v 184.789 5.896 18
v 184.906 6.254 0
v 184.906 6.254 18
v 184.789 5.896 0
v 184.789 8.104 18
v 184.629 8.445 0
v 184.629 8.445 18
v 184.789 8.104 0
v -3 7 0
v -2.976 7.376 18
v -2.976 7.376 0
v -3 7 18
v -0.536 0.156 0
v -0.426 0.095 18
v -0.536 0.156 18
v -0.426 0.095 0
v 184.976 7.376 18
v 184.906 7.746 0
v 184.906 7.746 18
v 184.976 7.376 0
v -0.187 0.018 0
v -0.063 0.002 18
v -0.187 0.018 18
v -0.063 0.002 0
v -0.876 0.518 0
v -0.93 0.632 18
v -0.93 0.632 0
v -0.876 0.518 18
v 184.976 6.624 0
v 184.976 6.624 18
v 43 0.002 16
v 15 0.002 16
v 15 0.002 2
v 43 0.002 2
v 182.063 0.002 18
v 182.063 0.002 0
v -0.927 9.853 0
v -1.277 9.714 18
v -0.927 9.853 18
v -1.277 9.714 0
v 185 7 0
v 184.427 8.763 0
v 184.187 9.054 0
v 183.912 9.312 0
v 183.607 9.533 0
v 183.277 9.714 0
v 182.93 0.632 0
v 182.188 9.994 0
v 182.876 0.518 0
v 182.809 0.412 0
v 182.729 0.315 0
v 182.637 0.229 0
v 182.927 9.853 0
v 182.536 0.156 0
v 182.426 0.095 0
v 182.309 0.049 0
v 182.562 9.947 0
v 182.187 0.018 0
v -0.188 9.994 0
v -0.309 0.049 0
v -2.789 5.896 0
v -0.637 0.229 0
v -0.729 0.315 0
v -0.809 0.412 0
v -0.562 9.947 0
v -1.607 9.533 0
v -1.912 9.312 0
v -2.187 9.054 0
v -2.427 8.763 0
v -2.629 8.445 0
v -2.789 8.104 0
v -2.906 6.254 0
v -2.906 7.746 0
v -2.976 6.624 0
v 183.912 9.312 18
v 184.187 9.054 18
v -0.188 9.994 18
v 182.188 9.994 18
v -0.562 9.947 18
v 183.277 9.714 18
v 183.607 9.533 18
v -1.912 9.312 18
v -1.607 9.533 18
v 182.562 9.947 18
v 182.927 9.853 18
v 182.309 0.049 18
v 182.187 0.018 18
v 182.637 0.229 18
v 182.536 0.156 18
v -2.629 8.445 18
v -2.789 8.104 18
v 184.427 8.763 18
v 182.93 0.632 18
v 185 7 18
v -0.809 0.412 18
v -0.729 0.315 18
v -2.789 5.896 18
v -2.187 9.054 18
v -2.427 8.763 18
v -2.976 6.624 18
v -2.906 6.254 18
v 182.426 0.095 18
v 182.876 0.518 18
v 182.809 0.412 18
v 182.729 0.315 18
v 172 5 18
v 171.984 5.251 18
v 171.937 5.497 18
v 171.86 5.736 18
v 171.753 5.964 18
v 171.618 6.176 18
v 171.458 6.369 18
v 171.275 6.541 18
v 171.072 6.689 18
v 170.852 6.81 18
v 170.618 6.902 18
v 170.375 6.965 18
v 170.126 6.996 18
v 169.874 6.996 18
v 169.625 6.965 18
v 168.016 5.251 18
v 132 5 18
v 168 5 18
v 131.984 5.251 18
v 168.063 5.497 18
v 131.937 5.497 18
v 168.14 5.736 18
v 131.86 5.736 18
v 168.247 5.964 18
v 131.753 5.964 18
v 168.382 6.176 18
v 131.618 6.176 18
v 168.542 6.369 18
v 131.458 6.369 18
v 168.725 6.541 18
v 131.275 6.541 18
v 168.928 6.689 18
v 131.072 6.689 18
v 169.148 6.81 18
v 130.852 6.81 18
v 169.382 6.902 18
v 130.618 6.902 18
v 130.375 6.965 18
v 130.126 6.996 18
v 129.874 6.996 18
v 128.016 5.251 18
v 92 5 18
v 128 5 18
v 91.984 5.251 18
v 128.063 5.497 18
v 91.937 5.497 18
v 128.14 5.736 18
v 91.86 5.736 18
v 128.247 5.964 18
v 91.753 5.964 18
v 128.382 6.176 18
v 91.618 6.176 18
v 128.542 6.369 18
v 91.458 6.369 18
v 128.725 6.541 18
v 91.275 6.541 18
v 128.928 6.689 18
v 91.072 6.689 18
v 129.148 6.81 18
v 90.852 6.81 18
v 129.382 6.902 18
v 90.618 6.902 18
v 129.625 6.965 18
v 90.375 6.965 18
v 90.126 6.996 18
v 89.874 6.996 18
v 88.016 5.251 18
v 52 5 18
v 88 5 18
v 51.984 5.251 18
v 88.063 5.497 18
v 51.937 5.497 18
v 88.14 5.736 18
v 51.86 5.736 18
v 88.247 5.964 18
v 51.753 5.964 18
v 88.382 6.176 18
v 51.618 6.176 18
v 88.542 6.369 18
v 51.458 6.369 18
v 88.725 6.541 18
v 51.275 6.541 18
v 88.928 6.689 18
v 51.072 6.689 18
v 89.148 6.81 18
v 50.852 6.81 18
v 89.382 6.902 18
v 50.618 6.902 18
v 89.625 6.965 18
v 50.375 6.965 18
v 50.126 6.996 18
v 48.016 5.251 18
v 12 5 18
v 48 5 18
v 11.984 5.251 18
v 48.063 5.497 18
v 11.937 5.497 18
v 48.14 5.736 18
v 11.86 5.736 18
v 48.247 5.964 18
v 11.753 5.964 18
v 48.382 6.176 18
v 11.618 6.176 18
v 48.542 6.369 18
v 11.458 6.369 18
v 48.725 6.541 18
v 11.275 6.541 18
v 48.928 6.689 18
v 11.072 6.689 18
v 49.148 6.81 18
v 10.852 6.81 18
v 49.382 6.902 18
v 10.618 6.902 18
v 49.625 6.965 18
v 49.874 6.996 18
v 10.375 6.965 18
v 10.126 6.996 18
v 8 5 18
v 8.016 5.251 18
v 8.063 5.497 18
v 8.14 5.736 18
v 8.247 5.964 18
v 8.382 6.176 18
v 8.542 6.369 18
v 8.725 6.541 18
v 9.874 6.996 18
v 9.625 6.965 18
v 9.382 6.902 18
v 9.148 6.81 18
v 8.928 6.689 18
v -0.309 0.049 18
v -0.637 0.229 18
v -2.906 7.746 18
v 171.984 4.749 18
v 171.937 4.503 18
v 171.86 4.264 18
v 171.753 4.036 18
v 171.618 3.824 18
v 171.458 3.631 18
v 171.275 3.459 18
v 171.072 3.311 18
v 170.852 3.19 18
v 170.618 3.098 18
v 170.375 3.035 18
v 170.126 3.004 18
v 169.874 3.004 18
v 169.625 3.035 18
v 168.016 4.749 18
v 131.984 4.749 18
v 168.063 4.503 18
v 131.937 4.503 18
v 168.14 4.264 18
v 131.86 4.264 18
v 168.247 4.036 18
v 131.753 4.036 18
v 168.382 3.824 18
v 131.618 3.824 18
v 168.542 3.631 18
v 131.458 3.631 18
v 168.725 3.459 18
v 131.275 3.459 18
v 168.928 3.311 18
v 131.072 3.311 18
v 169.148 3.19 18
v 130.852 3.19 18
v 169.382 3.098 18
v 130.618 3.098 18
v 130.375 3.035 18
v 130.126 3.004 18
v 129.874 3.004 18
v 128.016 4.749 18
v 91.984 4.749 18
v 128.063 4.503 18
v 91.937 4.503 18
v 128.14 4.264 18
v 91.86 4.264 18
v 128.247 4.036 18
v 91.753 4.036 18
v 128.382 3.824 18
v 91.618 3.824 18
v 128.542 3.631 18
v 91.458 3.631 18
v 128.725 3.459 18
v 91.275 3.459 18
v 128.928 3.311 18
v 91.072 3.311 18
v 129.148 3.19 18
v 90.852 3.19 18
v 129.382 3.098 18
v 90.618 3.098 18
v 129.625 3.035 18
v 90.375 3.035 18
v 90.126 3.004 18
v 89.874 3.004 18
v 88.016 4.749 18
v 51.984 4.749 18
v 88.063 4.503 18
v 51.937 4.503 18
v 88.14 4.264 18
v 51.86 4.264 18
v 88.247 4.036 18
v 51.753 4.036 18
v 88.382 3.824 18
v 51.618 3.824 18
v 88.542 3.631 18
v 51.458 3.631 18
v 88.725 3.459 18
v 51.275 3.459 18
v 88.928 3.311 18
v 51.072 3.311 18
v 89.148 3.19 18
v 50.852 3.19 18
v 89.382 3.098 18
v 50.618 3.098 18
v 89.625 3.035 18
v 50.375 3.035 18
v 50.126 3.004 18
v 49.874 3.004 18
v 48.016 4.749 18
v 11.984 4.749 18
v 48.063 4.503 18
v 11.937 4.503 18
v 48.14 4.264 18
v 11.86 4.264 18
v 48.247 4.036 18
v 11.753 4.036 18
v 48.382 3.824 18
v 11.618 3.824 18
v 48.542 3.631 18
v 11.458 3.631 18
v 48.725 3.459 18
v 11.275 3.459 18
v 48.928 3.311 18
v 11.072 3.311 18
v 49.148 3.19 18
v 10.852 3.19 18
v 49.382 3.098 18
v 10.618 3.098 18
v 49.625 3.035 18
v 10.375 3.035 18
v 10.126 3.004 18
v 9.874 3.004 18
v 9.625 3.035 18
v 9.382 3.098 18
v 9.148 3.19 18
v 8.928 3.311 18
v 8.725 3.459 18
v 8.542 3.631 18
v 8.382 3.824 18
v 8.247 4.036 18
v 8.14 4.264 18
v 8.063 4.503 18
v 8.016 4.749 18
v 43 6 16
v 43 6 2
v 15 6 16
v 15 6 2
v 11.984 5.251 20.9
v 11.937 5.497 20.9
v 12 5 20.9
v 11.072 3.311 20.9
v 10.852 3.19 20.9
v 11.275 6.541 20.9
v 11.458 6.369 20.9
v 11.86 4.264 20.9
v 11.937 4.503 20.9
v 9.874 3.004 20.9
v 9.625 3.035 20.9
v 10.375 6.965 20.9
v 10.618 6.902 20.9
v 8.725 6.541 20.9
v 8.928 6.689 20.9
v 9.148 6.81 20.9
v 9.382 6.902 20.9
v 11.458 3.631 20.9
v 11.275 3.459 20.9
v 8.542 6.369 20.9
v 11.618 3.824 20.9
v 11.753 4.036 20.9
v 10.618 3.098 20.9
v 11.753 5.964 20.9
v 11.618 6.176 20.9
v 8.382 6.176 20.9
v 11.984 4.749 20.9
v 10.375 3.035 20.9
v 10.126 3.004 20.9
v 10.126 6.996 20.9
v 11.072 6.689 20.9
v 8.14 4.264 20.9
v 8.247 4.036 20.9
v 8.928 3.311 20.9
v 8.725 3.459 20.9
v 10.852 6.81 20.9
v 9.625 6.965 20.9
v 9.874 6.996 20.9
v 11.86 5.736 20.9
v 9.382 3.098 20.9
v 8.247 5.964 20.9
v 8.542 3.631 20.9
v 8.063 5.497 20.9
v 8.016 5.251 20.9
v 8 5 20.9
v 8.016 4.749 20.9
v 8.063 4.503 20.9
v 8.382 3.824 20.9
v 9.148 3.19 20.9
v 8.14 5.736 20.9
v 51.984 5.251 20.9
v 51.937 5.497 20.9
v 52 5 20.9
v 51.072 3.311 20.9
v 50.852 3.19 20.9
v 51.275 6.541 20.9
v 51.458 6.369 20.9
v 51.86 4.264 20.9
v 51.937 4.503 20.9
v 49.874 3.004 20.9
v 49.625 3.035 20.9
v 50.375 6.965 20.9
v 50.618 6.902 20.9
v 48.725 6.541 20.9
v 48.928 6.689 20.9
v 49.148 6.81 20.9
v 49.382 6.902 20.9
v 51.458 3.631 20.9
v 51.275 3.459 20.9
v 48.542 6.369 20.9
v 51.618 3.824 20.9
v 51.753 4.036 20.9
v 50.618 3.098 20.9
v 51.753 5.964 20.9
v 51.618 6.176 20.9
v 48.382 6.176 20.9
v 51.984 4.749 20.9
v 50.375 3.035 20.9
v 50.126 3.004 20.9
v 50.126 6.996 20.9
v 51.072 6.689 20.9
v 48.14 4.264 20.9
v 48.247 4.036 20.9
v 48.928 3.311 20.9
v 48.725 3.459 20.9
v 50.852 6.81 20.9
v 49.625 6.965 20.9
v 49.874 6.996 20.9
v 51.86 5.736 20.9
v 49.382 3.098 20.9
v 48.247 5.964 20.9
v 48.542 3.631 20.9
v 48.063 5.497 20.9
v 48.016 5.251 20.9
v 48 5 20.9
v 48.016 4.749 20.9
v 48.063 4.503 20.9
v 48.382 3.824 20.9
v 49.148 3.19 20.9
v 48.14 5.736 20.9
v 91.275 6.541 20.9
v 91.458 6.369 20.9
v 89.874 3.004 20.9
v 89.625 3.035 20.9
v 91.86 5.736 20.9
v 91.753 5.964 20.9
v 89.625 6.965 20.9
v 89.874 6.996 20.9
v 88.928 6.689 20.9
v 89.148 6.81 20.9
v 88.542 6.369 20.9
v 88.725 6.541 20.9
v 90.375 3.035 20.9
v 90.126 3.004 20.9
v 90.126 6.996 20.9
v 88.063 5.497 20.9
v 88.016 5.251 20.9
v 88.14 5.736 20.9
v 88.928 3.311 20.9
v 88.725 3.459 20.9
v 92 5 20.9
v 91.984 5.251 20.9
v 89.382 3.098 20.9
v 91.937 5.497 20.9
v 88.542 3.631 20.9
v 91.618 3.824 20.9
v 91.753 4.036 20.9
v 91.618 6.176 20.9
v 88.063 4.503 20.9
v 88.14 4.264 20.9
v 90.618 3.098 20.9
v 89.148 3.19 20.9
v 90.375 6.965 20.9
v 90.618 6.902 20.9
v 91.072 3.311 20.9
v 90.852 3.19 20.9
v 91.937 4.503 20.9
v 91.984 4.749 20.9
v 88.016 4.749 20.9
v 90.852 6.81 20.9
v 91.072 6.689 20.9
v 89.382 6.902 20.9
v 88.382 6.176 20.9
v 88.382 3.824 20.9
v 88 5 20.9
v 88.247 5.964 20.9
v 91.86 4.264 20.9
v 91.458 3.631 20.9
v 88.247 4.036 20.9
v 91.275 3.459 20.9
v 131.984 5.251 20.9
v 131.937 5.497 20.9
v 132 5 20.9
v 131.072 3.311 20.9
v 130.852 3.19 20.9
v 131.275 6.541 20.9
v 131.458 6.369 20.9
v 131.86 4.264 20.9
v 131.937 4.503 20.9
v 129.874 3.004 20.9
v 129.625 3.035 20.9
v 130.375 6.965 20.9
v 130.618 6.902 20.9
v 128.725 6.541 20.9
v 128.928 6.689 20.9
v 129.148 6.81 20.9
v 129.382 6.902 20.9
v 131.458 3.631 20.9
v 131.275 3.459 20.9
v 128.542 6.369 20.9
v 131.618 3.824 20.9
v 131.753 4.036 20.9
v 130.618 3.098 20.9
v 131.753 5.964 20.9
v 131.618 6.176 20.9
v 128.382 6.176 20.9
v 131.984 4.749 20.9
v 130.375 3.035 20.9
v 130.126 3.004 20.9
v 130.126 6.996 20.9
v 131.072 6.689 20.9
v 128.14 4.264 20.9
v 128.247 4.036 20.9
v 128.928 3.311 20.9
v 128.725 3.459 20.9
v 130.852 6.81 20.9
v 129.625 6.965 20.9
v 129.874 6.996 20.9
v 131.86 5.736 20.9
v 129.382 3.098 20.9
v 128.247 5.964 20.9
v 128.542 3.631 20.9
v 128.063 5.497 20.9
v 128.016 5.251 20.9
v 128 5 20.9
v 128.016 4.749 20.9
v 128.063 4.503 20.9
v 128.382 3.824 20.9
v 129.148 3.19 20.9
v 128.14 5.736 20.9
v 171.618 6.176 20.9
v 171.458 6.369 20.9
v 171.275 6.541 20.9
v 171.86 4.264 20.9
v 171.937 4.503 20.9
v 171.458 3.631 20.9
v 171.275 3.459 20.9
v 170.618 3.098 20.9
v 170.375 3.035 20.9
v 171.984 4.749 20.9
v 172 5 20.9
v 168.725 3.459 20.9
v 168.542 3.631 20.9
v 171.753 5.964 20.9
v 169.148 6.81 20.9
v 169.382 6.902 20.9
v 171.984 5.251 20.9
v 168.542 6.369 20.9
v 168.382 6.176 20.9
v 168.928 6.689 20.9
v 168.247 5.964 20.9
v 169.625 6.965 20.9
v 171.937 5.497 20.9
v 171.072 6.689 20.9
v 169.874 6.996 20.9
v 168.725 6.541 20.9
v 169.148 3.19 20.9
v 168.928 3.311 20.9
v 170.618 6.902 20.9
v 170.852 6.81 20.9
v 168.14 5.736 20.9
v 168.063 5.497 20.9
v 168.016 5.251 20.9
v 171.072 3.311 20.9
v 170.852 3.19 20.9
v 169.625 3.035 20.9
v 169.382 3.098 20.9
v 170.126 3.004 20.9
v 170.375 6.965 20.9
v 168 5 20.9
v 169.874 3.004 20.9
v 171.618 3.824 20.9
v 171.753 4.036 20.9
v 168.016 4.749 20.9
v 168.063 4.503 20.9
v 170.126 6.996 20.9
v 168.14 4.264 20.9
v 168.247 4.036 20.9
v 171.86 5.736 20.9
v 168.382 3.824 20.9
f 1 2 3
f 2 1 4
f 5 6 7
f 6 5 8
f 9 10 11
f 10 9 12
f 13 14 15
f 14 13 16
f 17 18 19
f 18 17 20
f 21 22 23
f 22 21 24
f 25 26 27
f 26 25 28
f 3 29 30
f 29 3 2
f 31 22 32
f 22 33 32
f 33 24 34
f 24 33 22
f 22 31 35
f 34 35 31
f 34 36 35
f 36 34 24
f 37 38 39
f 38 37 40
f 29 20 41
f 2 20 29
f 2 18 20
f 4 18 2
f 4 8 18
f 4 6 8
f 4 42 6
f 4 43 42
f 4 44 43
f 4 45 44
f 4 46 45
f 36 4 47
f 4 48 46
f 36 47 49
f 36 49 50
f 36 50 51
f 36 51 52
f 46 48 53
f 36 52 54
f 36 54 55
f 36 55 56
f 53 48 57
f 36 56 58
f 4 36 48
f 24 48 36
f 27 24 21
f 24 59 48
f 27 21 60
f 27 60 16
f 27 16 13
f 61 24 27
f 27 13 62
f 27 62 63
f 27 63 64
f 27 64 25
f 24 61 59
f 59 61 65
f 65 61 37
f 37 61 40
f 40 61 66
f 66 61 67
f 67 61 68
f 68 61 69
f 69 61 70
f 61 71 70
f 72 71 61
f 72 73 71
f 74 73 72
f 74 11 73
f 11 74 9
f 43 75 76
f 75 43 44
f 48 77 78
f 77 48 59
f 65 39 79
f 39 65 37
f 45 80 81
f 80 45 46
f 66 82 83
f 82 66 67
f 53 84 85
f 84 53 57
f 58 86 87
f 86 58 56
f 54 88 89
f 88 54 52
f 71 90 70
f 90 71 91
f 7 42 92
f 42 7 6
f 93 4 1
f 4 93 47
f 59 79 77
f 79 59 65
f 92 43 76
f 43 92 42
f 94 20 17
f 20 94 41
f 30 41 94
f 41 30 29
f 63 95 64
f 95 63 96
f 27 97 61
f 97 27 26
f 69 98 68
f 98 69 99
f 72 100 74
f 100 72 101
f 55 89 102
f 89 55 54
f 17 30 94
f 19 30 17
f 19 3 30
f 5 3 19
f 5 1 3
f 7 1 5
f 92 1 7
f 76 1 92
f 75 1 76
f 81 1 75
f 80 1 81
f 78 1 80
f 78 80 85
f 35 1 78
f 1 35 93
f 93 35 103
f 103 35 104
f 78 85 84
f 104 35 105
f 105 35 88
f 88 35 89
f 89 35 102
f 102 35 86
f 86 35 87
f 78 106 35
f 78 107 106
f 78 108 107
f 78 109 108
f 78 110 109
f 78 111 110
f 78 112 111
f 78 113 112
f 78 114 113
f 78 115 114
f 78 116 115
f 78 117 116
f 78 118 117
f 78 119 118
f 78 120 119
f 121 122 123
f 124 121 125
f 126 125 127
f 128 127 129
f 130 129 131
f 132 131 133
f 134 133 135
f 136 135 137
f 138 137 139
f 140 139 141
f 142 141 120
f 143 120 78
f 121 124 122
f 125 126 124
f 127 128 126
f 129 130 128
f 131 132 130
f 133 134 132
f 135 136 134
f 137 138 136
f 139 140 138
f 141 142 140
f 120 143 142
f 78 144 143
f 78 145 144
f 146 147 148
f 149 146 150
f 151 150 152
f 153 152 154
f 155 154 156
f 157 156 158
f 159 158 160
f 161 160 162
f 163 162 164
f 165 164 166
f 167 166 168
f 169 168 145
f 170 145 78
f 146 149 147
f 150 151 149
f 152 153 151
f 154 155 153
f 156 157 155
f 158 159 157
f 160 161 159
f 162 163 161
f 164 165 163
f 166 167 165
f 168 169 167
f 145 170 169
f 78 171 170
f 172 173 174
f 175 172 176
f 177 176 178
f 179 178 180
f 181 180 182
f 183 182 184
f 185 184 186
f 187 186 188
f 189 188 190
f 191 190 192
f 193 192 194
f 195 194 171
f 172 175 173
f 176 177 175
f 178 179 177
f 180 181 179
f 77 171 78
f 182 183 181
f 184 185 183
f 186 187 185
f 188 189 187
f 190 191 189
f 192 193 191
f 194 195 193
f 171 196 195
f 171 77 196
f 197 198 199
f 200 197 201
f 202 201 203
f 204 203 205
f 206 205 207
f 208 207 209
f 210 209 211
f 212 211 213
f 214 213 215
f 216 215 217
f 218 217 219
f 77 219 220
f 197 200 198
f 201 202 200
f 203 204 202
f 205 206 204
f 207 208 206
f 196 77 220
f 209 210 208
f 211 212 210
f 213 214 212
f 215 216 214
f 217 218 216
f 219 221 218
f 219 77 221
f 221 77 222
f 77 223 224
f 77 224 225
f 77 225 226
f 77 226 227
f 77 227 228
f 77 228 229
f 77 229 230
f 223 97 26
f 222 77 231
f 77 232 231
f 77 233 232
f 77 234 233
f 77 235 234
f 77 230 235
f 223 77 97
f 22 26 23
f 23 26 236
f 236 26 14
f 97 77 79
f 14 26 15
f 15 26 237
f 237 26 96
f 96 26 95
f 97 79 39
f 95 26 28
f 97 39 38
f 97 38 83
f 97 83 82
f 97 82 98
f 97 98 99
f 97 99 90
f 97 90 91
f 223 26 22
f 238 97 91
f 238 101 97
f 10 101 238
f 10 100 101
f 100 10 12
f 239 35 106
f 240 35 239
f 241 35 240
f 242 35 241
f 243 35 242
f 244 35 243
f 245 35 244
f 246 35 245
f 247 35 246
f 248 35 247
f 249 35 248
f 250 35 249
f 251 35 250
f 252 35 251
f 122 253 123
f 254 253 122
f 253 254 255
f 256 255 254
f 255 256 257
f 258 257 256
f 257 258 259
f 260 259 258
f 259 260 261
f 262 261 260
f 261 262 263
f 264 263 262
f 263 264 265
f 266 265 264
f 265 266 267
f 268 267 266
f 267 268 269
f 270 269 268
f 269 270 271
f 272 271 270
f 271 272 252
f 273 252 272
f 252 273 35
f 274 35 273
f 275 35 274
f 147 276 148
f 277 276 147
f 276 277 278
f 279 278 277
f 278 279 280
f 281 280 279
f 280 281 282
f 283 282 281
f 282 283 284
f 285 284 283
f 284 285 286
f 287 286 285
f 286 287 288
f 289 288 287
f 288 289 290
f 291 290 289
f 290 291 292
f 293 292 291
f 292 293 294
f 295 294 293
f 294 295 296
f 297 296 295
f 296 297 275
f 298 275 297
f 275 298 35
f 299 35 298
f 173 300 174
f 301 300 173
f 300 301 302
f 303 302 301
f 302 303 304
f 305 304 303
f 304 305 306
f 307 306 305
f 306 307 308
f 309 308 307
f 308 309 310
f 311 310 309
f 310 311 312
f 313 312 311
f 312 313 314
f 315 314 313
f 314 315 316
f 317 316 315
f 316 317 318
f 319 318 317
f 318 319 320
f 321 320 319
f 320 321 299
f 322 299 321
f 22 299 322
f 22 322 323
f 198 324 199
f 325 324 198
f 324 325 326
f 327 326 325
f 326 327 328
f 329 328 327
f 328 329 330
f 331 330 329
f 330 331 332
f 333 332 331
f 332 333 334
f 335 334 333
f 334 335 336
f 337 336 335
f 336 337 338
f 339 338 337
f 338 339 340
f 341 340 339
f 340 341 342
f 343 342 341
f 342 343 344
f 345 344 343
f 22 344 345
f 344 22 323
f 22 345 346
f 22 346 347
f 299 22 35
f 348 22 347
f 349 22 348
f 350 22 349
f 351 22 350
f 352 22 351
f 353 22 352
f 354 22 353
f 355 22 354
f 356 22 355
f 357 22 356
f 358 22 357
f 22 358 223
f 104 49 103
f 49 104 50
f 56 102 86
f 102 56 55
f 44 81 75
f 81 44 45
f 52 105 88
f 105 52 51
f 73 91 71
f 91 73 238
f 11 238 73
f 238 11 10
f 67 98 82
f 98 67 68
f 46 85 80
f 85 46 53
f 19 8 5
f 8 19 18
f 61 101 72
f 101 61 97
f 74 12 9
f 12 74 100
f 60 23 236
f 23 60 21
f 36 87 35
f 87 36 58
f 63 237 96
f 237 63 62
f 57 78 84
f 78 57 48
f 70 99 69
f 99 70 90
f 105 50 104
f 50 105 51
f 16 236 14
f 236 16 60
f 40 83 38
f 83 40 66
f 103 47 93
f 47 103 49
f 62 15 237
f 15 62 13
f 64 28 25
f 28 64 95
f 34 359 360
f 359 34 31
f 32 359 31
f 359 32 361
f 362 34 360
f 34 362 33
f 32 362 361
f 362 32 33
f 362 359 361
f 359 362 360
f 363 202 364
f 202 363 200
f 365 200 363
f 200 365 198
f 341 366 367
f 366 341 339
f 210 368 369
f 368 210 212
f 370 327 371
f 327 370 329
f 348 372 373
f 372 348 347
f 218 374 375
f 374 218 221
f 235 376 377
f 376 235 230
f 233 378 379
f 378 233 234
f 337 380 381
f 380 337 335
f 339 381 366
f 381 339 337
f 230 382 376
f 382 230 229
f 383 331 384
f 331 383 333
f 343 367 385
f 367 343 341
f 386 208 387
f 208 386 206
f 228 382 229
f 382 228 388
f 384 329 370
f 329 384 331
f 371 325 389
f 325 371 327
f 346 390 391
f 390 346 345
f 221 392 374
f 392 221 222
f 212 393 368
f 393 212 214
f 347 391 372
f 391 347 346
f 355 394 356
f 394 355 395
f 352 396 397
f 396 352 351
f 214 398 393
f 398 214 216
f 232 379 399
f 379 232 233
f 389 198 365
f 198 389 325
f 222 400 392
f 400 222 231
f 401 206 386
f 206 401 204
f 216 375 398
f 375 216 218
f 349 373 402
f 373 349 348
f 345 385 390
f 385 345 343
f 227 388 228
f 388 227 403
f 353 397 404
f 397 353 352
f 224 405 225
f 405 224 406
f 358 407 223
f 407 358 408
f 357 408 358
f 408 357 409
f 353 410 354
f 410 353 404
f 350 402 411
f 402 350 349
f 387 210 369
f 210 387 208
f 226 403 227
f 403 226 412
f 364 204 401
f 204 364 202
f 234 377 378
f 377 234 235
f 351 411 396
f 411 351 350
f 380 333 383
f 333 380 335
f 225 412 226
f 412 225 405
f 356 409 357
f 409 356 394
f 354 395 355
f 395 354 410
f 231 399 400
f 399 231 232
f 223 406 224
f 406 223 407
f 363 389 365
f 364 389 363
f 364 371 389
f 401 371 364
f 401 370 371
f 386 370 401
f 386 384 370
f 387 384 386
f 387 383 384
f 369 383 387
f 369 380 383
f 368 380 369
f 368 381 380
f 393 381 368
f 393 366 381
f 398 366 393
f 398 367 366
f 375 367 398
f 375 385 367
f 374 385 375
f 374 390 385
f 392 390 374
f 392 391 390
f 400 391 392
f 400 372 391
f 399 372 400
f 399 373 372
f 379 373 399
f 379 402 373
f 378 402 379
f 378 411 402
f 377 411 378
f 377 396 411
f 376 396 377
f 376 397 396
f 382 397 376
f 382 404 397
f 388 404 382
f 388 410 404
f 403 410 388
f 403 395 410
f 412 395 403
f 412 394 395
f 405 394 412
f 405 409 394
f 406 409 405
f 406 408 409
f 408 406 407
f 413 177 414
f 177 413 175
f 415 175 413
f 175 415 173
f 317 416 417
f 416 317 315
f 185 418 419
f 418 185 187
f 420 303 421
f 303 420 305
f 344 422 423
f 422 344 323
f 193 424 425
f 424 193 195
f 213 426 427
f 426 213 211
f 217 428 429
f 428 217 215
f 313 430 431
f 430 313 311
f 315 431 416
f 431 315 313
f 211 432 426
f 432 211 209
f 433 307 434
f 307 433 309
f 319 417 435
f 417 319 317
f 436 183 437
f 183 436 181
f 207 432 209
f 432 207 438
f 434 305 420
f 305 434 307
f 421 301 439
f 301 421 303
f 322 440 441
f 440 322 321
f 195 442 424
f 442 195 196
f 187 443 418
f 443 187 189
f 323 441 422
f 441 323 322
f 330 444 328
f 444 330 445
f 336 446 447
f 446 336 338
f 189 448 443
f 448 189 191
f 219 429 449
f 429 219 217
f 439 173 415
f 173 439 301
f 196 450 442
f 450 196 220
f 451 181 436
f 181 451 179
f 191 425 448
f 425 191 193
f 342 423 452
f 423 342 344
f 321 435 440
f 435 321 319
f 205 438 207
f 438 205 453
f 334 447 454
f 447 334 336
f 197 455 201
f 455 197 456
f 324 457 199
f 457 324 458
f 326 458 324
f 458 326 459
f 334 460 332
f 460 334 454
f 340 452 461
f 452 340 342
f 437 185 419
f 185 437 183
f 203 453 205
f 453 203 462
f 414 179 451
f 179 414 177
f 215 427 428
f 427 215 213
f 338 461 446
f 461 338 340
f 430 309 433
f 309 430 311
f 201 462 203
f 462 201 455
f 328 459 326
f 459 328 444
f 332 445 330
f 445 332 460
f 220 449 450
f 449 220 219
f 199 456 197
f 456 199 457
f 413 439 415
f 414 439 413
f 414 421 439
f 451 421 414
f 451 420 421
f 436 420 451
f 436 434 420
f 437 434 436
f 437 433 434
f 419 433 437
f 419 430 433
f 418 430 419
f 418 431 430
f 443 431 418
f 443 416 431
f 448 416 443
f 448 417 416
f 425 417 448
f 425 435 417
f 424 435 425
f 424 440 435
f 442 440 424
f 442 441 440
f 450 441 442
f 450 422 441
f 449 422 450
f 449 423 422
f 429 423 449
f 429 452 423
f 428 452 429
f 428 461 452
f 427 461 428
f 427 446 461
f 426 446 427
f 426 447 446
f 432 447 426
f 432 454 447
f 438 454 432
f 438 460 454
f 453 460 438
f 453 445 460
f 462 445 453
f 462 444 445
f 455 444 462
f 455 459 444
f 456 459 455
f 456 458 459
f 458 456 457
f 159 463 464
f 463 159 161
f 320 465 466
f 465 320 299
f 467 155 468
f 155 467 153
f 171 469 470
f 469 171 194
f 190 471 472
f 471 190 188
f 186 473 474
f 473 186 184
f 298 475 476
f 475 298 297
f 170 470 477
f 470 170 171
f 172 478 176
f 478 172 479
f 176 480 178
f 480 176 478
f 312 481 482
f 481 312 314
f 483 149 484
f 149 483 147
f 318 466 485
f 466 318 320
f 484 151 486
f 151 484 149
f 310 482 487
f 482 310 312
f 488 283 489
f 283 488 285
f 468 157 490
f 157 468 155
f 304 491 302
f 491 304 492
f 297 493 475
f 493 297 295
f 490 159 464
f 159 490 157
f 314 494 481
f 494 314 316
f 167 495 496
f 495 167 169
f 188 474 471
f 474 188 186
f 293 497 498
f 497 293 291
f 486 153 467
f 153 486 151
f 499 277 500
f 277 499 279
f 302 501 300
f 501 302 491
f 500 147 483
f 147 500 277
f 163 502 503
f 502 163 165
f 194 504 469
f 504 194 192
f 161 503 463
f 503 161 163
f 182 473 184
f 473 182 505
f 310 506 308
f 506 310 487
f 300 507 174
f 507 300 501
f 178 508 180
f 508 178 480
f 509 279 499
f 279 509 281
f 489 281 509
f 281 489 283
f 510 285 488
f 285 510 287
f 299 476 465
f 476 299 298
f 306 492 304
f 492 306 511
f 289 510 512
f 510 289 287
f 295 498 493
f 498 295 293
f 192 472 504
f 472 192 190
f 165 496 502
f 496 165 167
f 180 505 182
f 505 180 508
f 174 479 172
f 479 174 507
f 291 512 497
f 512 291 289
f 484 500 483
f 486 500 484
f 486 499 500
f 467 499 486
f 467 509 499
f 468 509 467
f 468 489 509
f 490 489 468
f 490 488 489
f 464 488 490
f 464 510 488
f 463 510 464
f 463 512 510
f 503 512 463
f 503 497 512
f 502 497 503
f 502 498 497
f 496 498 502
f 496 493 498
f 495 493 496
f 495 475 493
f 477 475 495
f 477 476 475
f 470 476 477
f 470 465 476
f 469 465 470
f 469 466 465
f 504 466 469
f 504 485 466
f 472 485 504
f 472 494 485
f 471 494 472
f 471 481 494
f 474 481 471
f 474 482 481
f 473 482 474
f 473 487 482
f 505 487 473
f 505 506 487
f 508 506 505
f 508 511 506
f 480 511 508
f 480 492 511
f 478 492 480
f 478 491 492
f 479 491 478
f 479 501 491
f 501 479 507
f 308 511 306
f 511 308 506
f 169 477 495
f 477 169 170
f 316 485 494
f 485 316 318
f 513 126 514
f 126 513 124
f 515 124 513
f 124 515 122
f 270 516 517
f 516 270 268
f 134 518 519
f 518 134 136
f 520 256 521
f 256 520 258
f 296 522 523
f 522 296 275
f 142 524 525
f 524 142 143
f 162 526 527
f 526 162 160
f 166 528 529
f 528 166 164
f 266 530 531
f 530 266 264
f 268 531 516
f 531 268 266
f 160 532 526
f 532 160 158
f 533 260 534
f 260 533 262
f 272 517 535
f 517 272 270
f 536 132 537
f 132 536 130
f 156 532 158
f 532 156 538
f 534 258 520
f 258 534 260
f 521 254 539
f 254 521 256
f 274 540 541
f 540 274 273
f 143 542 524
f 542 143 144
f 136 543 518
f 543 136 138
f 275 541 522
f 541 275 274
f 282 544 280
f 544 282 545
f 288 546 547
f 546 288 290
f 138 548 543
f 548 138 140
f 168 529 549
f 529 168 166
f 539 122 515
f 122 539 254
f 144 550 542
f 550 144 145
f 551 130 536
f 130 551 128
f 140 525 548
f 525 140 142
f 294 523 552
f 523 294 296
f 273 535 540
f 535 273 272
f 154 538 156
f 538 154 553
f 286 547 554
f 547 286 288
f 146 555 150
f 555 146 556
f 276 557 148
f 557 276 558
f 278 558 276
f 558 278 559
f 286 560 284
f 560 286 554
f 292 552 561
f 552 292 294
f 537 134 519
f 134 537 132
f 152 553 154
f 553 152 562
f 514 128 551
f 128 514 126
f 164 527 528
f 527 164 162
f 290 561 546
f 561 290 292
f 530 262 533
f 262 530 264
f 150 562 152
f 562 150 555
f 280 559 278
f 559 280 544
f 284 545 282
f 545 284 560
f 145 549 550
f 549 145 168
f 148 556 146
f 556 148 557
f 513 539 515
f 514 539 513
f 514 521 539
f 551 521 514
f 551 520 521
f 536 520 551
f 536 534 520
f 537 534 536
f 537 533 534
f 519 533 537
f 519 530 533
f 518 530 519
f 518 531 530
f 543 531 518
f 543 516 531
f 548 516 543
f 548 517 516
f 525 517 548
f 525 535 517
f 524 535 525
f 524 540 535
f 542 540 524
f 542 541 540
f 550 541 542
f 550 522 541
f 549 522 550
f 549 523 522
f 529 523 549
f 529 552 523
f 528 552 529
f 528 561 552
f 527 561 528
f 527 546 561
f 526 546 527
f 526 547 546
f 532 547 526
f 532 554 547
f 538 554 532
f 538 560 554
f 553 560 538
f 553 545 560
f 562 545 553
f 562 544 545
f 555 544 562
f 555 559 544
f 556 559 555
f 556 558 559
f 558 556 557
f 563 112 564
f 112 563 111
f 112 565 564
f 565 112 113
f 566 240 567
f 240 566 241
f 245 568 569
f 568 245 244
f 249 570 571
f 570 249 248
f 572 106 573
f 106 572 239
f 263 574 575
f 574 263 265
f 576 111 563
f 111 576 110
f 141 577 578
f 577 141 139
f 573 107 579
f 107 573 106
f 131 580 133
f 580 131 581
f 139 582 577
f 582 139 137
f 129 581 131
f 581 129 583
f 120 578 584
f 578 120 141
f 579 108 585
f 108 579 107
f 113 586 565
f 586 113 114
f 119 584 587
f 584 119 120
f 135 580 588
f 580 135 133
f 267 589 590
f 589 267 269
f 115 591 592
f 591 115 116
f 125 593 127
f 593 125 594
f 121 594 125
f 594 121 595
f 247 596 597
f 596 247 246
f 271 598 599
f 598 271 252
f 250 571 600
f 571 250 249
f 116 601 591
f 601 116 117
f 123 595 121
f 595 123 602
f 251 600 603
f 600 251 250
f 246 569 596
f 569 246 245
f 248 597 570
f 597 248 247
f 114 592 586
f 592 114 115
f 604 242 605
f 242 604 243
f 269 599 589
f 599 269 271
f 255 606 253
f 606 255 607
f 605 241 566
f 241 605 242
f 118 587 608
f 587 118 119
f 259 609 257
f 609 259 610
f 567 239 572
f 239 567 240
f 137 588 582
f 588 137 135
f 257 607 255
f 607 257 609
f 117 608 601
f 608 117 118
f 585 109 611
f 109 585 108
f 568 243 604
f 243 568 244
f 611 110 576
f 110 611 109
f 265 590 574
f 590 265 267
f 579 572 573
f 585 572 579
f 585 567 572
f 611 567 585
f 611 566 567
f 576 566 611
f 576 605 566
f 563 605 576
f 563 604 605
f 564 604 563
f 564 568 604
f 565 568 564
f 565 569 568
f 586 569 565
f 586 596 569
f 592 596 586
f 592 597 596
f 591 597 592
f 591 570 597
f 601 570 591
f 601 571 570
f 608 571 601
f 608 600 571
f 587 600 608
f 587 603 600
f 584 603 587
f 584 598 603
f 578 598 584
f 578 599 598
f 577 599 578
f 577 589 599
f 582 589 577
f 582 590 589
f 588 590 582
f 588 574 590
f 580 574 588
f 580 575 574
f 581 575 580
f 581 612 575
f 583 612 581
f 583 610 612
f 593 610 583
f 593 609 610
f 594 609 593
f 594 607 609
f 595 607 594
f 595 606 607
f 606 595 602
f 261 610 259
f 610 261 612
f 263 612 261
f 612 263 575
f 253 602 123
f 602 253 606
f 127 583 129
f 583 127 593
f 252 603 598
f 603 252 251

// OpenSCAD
// file: ../common/math.scad
//
// just some useful general math utilities
//

//
// min() and max() give you the lower or higher of their arguments,
// respectively.  They behave asymmetrically at 0, so as to establish a
// stable sort order, merely reversed, no matter which order the inputs come
// in.
//
// contributed by @vathpela
//
function min(x, y) = y > x ? x : y;
function max(x, y) = x >= y ? x : y;

//
// logx(x, b) is log base x of b aka logX(b)
//
// *sigh*, openscad's math primitives are so defective
//
// contributed by @vathpela
//
function logx(x, b) = log(x) / log(b);
// file: ../common/shapes.scad
/*
  author: Christopher O'Brien  <obriencj@gmail.com>
  license: GPL v3
*/


function shared_tangents(p1, p2) =
    let(r1 = p1[2],
        r2 = p2[2],
        dx = p2.x - p1.x,
        dy = p2.y - p1.y,
        d = sqrt(dx * dx + dy * dy),
        theta = atan2(dy, dx) + acos((r1 - r2) / d),
        xa = p1.x +(cos(theta) * r1),
        ya = p1.y +(sin(theta) * r1),
        xb = p2.x +(cos(theta) * r2),
        yb = p2.y +(sin(theta) * r2))
     [ [xa, ya], [xb, yb] ];



module _rounded_polygon(points, $fn=100) {
/*
  each point is [x, y, r] of a circle

  adapted from
  http://forum.openscad.org/Script-to-replicate-hull-and-minkoswki-for-CSG-export-import-into-FreeCAD-td16537.html#a16556
*/

     p_len = len(points);

     function p_tang(index) =
	  shared_tangents(points[index], points[(index + 1) % p_len]);

     // all the positive radius circles
     for(p = points) {
	  if(p[2] > 0) {
	       translate([p.x, p.y]) {
		    circle(p[2]);
	       };
	  };
     };

     difference() {
	  // a polygon connecting the tangent points between all
	  // circles in order
	  polygon([for(i = [0: p_len - 1]) for(e = p_tang(i)) e]);

	  // then subtract all the negative radius circles
	  for(p = points) {
	       if(p[2] < 0) {
		    translate([p.x, p.y]) {
			 circle(-p[2]);
		    };
	       };
	  };
     };
}


module rounded_polygon(points, thick=0, $fn=100) {
     /*
       each point in points is a vector of [x, y, r] where r is
       positive to indicate that it is an interior point, and negative
       to indicate it is an exterior point.
     */

     if(thick) {
	  linear_extrude(thick) {
	       _rounded_polygon(points, $fn);
	  };
     } else {
	  _rounded_polygon(points, $fn);
     };
}


function _r_adj(r, adj) =
     let(ra = r + adj) (r > 0)? max(0, ra): ra;


function adj_rounded_poly(points, adj) =
     [for(p=points) [p.x, p.y, _r_adj(p[2], adj)]];


module rounded_inset_poly(points, inset, thick, lip=undef) {
     tl = lip? (thick - lip): (thick / 2);

     rounded_polygon(points, tl);
     translate([0, 0, tl]) {
	  rounded_polygon(adj_rounded_poly(points, -inset),
			  thick - tl);
     };
}


module rounded_outset_poly(points, inset, thick, lip=undef) {
     tl = lip? (thick - lip): (thick / 2);

     rounded_polygon(points, tl);
     rounded_hollow_poly(points, inset, thick);
}


module rounded_hollow_poly(points, inset, thick) {
     linear_extrude(thick) {
	  difference() {
	       rounded_polygon(points);
	       rounded_polygon(adj_rounded_poly(points, -inset));
	  };
     };
}


/**
   A cylinder with a bore through it

   * barrel_r is the exterior radius
   * barrel_h is the overall height
   * bore_r is the interior radius
*/
module barrel(barrel_r, barrel_h, bore_r, $fn=100) {
     linear_extrude(barrel_h) {
	  difference() {
	       circle(barrel_r);
	       circle(bore_r);
	  };
     };
}


/**
   A ring with a circular profile.

   * ring_ir is the interior radius
   * cross_r is the radius of the cross-section
*/
module o_ring(ring_ir, cross_r, $fn=100) {
     rotate_extrude(angle=360) {
	  translate([ring_ir + cross_r, 0, 0]) {
	       circle(cross_r);
	  };
     };
}


/**
   A ring with a D shaped profile.

   * ring_ir is the interior radius
   * cross_r is the radius of the cross-section, before being affected
   by the factor.
   * The factor describes how much of a circle is being presented in
   the cross-section. A factor of 1 is equivalent of an oring.
*/
module d_ring(ring_ir, cross_r, factor=0.25, $fn=100) {

     factor_shift = (cross_r * 2 * factor) - cross_r;

     rotate_extrude(angle=360) {
	  difference() {
	       translate([ring_ir + factor_shift , 0, 0]) {
		    circle(cross_r);
	       };
	       square([ring_ir * 2, ring_ir * 2], true);
	  };
     };
}



module rounded_plate(width, depth, height, turn_r=5.1, $fn=50) {
     turn_d = turn_r * 2;

     translate([turn_r, turn_r, 0]) {
	  linear_extrude(height) {
	       minkowski() {
		    square([width - turn_d, depth - turn_d]);
		    circle(turn_r);
	       };
	  };
     };
}


module rounded_box(width, depth, height, turn_r=5, $fn=50) {
     turn_d = turn_r * 2;

     translate([turn_r, turn_r, turn_r]) {
	  minkowski() {
	       cube([width - turn_d, depth - turn_d, height - turn_d]);
	       sphere(turn_r);
	  };
     };
}


// The end.
// file: ../common/copies.scad
/*
  author: Christopher O'Brien  <obriencj@gmail.com>
  license: GPL v3
*/
use <../common/math.scad>

module copy_mirror(plane=[0, 0, 1]) {
     children();
     mirror(plane) children();
}


module copy_translate(x=0, y=0, z=0, copies=1) {
     if(copies) {
	  for(i = [0:copies]) {
	       translate([x * i, y * i, z * i]) {
		    children();
	       };
	  };
     } else {
	  children();
     };
}


module copy_rotate(x=0, y=0, z=0, copies=1) {
     if(copies) {
	  for(i = [0:copies]) {
	       rotate([x * i, y * i, z * i]) {
		    children();
	       };
	  };
     } else {
	  children();
     };
}


module copy_grid(offsets=[0, 0, 0], grid=[1, 1, 1]) {
     copy_translate(x=offsets.x, copies=grid.x-1) {
	  copy_translate(y=offsets.y, copies=grid.y-1) {
	       copy_translate(z=offsets.z, copies=grid.z-1) {
		    children();
	       };
	  };
     };
}


module duplicate(move_v=[0,0,0], rotate_v=[0,0,0]) {
     children();
     translate(move_v) {
	  rotate(rotate_v) {
	       children();
	  };
     };
}


//
// isomers() builds stereoisometric copies, horrifyingly laid out on the xy
// plane.
//
// you can specify how many copies with n=<NUMBER> or ns[xN, yN, zN],
// n=1 is the same as ns=[1, 0, 0]
// If the single n is nonzero, it is used, else the vector is.
//
// This is astonishingly close to actual n-dimensional chess.  You probably
// only want to choose n>1 on 2 or fewer planes at the same time. Inputs:
//
// contributed by @vathpela
//
module isomers(n=0, ns=[1, 0, 0], size=[1, 1, 1], debug=false)
{
    nm = [n ? n : ns[0], n ? 1 : ns[1], n ? 1 : ns[2]];

    xn = max(nm[0], 1);
    yn = max(nm[1], 1);
    zn = max(nm[2], 1);
    if (debug)
        echo("[xn,yn,zn]", [xn,yn,zn]);
    m = logn(xn*yn*zn, 2);

    xs = size[0];
    ys = size[1];
    zs = size[2];
    if (debug)
        echo("[xs,ys,zs]", [xs,ys,zs]);

    module zmirrorshift(origin=[0, 0, 0], x, y)
    {
        if (debug)
            echo("zmirror origin", origin);
        for (z = [0:1:zn-1])
        {
            shift0 = [origin[0] + xs/2 * 1.2 * (z-0.5)*-zn,
                      origin[1],
                      origin[2] + zs];
            shift1 = [origin[0] + xs/2 * 1.2 * (z-3.5)*zn - (xn) * xs * 1.2,
                      origin[1],
                      origin[2]];
            shift2 = [origin[0] + xs/2 * 1.2 * (z-0.5)*-zn,
                      origin[1],
                      origin[2]];

            if (z % 2 == 0 && zn != 1) {
                if (debug)
                    echo("za [z]", [z], "[zs]", [zs], "t([x,y,z])", shift0);
                translate(shift0) mirror([0, 0, 1]) children();
            } else {
                if (debug)
                    echo("zb [z]", [z], "[zs]", [zs], "t([x,y,z])", shift1);
                translate(zn == 1 ? shift2 : shift1) children();
            }
        }
    }

    module ymirrorshift(origin=[0, 0, 0], x)
    {
        if (debug)
            echo("ymirror origin", origin);
        for (y = [0:1:yn-1])
        {
            shift=[origin[0],
                   origin[1] + y * ys * 1.2,
                   origin[2]];
            if (debug)
                echo("ya [x,y,z]", [x,y,0], "[ys,zs]", [ys,zs], "t([x,y,z])", shift);
            if (y % 2 == 0) {
                zmirrorshift(shift, x, y) mirror([0, 1, 0]) children();
            } else {
                zmirrorshift(shift, x, y) children();
            }
        }
    }

    module xmirrorshift(origin=[0, 0, 0])
    {
        if (debug)
            echo("xmirror origin", origin);
        for (x = [0:1:xn-1])
        {
            shift=[origin[0] + x * xs * 1.2,
                   origin[1],
                   origin[2]];
            if (debug)
                echo("xa [x,y,z]", [x,0,0],
                     "[xs,ys,zs]", [xs,ys,zs],
                     "t([x,y,z])", shift);
            if (x % 2 == 0) {
                ymirrorshift(shift, x) mirror([1, 0, 0]) children();
            } else {
                ymirrorshift(shift, x) children();
            }
        }
    }

    xmirrorshift() children();
}

// The end.
// file: shelf.scad
use <../common/copies.scad>;
use <../common/shapes.scad>;


function _shelf_profile_points() =
     [[0, 0, 0],
      [0, 2, 0],
      [2, 4, -2],
      [20, 30, -1],
      [20, 32, 1],
      [23, 30, 2],
      [21, 8, -6],
      [22, 1, 1],
      [22, 0, 0]];


function _shelf_boundary_points() =
     [[0, 0, 0],
      [0, 2, 0],
      [20, 32, 1],
      [23, 30, 2],
      [2, 0, 0]];


module _single_shelf(wide, male=true, female=true, $fn=50) {
     pin_r = 2;
     pin = [10, 5];

     // note that the pin and hole will be 1mm shorter, due to
     // intentional overlap with the shelf body
     pin_l = 4;

     // wider hole, shorter pin
     slop = 0.1;

     difference() {
	  union() {
	       rounded_polygon(_shelf_profile_points(), thick=wide);
	       rounded_polygon(_shelf_boundary_points(), thick=1);
	  };
	  if(female) {
	       translate([pin.x, pin.y, -1]) {
		    // make the holes slightly wider
		    cylinder(r=pin_r + slop, pin_l);
	       };
	  };
     }

     if(male) {
	  translate([pin.x, pin.y, wide - 1]) {
	       // make the pins slightly shorter
	       cylinder(r=pin_r, pin_l - slop);
	  };
     };
}


module hotwheels_shelf(wide=90, rows=5, tall=40, $fn=50) {

     // the shelf profiles
     copy_translate(x=tall, copies=rows-1) {
	  _single_shelf(wide);
     };

     // the backing plate that joins the shelves together
     linear_extrude(wide) {
	  hull() {
	       translate([0, 1]) {
		    circle(1);
	       };
	       translate([tall * (rows - 1), 1]) {
		    circle(1);
	       };
	  };

     };
}


module hotwheels_left_end(rows=5, tall=40, $fn=50) {
     pin_r = 2;
     pin = [10, 5];

     // note that the pin and hole will be 1mm shorter, due to
     // intentional overlap with the shelf body
     pin_l = 4;

     // wider hole, shorter pin
     slop = 0.1;

     backplate_bottom = tall * (rows - 1) + 22;

     difference() {
	  union() {
	       // the left end needs the profile of the shelf
	       // boundary, but not a real shelf
	       copy_translate(x=tall, copies=rows-1) {
		    union() {
			 rounded_polygon(_shelf_profile_points(), thick=1);
			 rounded_polygon(_shelf_boundary_points(), thick=1);
		    };
	       };

	       // the backing plate that joins the shelves together
	       linear_extrude(19) {
		    hull() {
			 translate([0, 1]) {
			      circle(1);
			 };
			 translate([0, 7]) {
			      circle(3);
			 };
			 translate([backplate_bottom, 1]) {
			      circle(1);
			 };
			 translate([backplate_bottom, 7]) {
			      circle(3);
			 };
		    };
	       };
	  };

	  copy_translate(x=tall, copies=rows-1) {
	       translate([pin.x, pin.y, -1]) {
		    // make the holes slightly wider
		    cylinder(r=pin_r + slop, pin_l);
	       };
	  };

	  translate([15, -1, 3]) {
	       cube([28, 7, 14]);
	  };
     };
}


module hotwheels_right_end(rows=5, tall=40, $fn=50) {
     pin_r = 2;
     pin = [10, 5];

     // note that the pin and hole will be 1mm shorter, due to
     // intentional overlap with the shelf body
     pin_l = 4;

     // wider hole, shorter pin
     slop = 0.1;

     backplate_bottom = tall * (rows - 1) + 22;

     wide = 18;

     difference() {
	  // the backing plate that joins the shelves together
	  linear_extrude(wide) {
	       hull() {
		    translate([0, 1]) {
			 circle(1);
		    };
		    translate([0, 7]) {
			 circle(3);
		    };
		    translate([backplate_bottom, 1]) {
			 circle(1);
		    };
		    translate([backplate_bottom, 7]) {
			 circle(3);
		    };
	       };
	  };

	  translate([15, -1, 2]) {
	       cube([28, 7, 14]);
	  };
     };

     copy_translate(x=tall, copies=rows-1) {
	  translate([pin.x, pin.y, wide - 1]) {
	       // make the pins slightly shorter
	       cylinder(r=pin_r, pin_l - slop);
	  };
     };
}


hotwheels_shelf(rows=5);


// The end.
// main file
use <shelf.scad>;


hotwheels_right_end(rows=5);


// The end.
